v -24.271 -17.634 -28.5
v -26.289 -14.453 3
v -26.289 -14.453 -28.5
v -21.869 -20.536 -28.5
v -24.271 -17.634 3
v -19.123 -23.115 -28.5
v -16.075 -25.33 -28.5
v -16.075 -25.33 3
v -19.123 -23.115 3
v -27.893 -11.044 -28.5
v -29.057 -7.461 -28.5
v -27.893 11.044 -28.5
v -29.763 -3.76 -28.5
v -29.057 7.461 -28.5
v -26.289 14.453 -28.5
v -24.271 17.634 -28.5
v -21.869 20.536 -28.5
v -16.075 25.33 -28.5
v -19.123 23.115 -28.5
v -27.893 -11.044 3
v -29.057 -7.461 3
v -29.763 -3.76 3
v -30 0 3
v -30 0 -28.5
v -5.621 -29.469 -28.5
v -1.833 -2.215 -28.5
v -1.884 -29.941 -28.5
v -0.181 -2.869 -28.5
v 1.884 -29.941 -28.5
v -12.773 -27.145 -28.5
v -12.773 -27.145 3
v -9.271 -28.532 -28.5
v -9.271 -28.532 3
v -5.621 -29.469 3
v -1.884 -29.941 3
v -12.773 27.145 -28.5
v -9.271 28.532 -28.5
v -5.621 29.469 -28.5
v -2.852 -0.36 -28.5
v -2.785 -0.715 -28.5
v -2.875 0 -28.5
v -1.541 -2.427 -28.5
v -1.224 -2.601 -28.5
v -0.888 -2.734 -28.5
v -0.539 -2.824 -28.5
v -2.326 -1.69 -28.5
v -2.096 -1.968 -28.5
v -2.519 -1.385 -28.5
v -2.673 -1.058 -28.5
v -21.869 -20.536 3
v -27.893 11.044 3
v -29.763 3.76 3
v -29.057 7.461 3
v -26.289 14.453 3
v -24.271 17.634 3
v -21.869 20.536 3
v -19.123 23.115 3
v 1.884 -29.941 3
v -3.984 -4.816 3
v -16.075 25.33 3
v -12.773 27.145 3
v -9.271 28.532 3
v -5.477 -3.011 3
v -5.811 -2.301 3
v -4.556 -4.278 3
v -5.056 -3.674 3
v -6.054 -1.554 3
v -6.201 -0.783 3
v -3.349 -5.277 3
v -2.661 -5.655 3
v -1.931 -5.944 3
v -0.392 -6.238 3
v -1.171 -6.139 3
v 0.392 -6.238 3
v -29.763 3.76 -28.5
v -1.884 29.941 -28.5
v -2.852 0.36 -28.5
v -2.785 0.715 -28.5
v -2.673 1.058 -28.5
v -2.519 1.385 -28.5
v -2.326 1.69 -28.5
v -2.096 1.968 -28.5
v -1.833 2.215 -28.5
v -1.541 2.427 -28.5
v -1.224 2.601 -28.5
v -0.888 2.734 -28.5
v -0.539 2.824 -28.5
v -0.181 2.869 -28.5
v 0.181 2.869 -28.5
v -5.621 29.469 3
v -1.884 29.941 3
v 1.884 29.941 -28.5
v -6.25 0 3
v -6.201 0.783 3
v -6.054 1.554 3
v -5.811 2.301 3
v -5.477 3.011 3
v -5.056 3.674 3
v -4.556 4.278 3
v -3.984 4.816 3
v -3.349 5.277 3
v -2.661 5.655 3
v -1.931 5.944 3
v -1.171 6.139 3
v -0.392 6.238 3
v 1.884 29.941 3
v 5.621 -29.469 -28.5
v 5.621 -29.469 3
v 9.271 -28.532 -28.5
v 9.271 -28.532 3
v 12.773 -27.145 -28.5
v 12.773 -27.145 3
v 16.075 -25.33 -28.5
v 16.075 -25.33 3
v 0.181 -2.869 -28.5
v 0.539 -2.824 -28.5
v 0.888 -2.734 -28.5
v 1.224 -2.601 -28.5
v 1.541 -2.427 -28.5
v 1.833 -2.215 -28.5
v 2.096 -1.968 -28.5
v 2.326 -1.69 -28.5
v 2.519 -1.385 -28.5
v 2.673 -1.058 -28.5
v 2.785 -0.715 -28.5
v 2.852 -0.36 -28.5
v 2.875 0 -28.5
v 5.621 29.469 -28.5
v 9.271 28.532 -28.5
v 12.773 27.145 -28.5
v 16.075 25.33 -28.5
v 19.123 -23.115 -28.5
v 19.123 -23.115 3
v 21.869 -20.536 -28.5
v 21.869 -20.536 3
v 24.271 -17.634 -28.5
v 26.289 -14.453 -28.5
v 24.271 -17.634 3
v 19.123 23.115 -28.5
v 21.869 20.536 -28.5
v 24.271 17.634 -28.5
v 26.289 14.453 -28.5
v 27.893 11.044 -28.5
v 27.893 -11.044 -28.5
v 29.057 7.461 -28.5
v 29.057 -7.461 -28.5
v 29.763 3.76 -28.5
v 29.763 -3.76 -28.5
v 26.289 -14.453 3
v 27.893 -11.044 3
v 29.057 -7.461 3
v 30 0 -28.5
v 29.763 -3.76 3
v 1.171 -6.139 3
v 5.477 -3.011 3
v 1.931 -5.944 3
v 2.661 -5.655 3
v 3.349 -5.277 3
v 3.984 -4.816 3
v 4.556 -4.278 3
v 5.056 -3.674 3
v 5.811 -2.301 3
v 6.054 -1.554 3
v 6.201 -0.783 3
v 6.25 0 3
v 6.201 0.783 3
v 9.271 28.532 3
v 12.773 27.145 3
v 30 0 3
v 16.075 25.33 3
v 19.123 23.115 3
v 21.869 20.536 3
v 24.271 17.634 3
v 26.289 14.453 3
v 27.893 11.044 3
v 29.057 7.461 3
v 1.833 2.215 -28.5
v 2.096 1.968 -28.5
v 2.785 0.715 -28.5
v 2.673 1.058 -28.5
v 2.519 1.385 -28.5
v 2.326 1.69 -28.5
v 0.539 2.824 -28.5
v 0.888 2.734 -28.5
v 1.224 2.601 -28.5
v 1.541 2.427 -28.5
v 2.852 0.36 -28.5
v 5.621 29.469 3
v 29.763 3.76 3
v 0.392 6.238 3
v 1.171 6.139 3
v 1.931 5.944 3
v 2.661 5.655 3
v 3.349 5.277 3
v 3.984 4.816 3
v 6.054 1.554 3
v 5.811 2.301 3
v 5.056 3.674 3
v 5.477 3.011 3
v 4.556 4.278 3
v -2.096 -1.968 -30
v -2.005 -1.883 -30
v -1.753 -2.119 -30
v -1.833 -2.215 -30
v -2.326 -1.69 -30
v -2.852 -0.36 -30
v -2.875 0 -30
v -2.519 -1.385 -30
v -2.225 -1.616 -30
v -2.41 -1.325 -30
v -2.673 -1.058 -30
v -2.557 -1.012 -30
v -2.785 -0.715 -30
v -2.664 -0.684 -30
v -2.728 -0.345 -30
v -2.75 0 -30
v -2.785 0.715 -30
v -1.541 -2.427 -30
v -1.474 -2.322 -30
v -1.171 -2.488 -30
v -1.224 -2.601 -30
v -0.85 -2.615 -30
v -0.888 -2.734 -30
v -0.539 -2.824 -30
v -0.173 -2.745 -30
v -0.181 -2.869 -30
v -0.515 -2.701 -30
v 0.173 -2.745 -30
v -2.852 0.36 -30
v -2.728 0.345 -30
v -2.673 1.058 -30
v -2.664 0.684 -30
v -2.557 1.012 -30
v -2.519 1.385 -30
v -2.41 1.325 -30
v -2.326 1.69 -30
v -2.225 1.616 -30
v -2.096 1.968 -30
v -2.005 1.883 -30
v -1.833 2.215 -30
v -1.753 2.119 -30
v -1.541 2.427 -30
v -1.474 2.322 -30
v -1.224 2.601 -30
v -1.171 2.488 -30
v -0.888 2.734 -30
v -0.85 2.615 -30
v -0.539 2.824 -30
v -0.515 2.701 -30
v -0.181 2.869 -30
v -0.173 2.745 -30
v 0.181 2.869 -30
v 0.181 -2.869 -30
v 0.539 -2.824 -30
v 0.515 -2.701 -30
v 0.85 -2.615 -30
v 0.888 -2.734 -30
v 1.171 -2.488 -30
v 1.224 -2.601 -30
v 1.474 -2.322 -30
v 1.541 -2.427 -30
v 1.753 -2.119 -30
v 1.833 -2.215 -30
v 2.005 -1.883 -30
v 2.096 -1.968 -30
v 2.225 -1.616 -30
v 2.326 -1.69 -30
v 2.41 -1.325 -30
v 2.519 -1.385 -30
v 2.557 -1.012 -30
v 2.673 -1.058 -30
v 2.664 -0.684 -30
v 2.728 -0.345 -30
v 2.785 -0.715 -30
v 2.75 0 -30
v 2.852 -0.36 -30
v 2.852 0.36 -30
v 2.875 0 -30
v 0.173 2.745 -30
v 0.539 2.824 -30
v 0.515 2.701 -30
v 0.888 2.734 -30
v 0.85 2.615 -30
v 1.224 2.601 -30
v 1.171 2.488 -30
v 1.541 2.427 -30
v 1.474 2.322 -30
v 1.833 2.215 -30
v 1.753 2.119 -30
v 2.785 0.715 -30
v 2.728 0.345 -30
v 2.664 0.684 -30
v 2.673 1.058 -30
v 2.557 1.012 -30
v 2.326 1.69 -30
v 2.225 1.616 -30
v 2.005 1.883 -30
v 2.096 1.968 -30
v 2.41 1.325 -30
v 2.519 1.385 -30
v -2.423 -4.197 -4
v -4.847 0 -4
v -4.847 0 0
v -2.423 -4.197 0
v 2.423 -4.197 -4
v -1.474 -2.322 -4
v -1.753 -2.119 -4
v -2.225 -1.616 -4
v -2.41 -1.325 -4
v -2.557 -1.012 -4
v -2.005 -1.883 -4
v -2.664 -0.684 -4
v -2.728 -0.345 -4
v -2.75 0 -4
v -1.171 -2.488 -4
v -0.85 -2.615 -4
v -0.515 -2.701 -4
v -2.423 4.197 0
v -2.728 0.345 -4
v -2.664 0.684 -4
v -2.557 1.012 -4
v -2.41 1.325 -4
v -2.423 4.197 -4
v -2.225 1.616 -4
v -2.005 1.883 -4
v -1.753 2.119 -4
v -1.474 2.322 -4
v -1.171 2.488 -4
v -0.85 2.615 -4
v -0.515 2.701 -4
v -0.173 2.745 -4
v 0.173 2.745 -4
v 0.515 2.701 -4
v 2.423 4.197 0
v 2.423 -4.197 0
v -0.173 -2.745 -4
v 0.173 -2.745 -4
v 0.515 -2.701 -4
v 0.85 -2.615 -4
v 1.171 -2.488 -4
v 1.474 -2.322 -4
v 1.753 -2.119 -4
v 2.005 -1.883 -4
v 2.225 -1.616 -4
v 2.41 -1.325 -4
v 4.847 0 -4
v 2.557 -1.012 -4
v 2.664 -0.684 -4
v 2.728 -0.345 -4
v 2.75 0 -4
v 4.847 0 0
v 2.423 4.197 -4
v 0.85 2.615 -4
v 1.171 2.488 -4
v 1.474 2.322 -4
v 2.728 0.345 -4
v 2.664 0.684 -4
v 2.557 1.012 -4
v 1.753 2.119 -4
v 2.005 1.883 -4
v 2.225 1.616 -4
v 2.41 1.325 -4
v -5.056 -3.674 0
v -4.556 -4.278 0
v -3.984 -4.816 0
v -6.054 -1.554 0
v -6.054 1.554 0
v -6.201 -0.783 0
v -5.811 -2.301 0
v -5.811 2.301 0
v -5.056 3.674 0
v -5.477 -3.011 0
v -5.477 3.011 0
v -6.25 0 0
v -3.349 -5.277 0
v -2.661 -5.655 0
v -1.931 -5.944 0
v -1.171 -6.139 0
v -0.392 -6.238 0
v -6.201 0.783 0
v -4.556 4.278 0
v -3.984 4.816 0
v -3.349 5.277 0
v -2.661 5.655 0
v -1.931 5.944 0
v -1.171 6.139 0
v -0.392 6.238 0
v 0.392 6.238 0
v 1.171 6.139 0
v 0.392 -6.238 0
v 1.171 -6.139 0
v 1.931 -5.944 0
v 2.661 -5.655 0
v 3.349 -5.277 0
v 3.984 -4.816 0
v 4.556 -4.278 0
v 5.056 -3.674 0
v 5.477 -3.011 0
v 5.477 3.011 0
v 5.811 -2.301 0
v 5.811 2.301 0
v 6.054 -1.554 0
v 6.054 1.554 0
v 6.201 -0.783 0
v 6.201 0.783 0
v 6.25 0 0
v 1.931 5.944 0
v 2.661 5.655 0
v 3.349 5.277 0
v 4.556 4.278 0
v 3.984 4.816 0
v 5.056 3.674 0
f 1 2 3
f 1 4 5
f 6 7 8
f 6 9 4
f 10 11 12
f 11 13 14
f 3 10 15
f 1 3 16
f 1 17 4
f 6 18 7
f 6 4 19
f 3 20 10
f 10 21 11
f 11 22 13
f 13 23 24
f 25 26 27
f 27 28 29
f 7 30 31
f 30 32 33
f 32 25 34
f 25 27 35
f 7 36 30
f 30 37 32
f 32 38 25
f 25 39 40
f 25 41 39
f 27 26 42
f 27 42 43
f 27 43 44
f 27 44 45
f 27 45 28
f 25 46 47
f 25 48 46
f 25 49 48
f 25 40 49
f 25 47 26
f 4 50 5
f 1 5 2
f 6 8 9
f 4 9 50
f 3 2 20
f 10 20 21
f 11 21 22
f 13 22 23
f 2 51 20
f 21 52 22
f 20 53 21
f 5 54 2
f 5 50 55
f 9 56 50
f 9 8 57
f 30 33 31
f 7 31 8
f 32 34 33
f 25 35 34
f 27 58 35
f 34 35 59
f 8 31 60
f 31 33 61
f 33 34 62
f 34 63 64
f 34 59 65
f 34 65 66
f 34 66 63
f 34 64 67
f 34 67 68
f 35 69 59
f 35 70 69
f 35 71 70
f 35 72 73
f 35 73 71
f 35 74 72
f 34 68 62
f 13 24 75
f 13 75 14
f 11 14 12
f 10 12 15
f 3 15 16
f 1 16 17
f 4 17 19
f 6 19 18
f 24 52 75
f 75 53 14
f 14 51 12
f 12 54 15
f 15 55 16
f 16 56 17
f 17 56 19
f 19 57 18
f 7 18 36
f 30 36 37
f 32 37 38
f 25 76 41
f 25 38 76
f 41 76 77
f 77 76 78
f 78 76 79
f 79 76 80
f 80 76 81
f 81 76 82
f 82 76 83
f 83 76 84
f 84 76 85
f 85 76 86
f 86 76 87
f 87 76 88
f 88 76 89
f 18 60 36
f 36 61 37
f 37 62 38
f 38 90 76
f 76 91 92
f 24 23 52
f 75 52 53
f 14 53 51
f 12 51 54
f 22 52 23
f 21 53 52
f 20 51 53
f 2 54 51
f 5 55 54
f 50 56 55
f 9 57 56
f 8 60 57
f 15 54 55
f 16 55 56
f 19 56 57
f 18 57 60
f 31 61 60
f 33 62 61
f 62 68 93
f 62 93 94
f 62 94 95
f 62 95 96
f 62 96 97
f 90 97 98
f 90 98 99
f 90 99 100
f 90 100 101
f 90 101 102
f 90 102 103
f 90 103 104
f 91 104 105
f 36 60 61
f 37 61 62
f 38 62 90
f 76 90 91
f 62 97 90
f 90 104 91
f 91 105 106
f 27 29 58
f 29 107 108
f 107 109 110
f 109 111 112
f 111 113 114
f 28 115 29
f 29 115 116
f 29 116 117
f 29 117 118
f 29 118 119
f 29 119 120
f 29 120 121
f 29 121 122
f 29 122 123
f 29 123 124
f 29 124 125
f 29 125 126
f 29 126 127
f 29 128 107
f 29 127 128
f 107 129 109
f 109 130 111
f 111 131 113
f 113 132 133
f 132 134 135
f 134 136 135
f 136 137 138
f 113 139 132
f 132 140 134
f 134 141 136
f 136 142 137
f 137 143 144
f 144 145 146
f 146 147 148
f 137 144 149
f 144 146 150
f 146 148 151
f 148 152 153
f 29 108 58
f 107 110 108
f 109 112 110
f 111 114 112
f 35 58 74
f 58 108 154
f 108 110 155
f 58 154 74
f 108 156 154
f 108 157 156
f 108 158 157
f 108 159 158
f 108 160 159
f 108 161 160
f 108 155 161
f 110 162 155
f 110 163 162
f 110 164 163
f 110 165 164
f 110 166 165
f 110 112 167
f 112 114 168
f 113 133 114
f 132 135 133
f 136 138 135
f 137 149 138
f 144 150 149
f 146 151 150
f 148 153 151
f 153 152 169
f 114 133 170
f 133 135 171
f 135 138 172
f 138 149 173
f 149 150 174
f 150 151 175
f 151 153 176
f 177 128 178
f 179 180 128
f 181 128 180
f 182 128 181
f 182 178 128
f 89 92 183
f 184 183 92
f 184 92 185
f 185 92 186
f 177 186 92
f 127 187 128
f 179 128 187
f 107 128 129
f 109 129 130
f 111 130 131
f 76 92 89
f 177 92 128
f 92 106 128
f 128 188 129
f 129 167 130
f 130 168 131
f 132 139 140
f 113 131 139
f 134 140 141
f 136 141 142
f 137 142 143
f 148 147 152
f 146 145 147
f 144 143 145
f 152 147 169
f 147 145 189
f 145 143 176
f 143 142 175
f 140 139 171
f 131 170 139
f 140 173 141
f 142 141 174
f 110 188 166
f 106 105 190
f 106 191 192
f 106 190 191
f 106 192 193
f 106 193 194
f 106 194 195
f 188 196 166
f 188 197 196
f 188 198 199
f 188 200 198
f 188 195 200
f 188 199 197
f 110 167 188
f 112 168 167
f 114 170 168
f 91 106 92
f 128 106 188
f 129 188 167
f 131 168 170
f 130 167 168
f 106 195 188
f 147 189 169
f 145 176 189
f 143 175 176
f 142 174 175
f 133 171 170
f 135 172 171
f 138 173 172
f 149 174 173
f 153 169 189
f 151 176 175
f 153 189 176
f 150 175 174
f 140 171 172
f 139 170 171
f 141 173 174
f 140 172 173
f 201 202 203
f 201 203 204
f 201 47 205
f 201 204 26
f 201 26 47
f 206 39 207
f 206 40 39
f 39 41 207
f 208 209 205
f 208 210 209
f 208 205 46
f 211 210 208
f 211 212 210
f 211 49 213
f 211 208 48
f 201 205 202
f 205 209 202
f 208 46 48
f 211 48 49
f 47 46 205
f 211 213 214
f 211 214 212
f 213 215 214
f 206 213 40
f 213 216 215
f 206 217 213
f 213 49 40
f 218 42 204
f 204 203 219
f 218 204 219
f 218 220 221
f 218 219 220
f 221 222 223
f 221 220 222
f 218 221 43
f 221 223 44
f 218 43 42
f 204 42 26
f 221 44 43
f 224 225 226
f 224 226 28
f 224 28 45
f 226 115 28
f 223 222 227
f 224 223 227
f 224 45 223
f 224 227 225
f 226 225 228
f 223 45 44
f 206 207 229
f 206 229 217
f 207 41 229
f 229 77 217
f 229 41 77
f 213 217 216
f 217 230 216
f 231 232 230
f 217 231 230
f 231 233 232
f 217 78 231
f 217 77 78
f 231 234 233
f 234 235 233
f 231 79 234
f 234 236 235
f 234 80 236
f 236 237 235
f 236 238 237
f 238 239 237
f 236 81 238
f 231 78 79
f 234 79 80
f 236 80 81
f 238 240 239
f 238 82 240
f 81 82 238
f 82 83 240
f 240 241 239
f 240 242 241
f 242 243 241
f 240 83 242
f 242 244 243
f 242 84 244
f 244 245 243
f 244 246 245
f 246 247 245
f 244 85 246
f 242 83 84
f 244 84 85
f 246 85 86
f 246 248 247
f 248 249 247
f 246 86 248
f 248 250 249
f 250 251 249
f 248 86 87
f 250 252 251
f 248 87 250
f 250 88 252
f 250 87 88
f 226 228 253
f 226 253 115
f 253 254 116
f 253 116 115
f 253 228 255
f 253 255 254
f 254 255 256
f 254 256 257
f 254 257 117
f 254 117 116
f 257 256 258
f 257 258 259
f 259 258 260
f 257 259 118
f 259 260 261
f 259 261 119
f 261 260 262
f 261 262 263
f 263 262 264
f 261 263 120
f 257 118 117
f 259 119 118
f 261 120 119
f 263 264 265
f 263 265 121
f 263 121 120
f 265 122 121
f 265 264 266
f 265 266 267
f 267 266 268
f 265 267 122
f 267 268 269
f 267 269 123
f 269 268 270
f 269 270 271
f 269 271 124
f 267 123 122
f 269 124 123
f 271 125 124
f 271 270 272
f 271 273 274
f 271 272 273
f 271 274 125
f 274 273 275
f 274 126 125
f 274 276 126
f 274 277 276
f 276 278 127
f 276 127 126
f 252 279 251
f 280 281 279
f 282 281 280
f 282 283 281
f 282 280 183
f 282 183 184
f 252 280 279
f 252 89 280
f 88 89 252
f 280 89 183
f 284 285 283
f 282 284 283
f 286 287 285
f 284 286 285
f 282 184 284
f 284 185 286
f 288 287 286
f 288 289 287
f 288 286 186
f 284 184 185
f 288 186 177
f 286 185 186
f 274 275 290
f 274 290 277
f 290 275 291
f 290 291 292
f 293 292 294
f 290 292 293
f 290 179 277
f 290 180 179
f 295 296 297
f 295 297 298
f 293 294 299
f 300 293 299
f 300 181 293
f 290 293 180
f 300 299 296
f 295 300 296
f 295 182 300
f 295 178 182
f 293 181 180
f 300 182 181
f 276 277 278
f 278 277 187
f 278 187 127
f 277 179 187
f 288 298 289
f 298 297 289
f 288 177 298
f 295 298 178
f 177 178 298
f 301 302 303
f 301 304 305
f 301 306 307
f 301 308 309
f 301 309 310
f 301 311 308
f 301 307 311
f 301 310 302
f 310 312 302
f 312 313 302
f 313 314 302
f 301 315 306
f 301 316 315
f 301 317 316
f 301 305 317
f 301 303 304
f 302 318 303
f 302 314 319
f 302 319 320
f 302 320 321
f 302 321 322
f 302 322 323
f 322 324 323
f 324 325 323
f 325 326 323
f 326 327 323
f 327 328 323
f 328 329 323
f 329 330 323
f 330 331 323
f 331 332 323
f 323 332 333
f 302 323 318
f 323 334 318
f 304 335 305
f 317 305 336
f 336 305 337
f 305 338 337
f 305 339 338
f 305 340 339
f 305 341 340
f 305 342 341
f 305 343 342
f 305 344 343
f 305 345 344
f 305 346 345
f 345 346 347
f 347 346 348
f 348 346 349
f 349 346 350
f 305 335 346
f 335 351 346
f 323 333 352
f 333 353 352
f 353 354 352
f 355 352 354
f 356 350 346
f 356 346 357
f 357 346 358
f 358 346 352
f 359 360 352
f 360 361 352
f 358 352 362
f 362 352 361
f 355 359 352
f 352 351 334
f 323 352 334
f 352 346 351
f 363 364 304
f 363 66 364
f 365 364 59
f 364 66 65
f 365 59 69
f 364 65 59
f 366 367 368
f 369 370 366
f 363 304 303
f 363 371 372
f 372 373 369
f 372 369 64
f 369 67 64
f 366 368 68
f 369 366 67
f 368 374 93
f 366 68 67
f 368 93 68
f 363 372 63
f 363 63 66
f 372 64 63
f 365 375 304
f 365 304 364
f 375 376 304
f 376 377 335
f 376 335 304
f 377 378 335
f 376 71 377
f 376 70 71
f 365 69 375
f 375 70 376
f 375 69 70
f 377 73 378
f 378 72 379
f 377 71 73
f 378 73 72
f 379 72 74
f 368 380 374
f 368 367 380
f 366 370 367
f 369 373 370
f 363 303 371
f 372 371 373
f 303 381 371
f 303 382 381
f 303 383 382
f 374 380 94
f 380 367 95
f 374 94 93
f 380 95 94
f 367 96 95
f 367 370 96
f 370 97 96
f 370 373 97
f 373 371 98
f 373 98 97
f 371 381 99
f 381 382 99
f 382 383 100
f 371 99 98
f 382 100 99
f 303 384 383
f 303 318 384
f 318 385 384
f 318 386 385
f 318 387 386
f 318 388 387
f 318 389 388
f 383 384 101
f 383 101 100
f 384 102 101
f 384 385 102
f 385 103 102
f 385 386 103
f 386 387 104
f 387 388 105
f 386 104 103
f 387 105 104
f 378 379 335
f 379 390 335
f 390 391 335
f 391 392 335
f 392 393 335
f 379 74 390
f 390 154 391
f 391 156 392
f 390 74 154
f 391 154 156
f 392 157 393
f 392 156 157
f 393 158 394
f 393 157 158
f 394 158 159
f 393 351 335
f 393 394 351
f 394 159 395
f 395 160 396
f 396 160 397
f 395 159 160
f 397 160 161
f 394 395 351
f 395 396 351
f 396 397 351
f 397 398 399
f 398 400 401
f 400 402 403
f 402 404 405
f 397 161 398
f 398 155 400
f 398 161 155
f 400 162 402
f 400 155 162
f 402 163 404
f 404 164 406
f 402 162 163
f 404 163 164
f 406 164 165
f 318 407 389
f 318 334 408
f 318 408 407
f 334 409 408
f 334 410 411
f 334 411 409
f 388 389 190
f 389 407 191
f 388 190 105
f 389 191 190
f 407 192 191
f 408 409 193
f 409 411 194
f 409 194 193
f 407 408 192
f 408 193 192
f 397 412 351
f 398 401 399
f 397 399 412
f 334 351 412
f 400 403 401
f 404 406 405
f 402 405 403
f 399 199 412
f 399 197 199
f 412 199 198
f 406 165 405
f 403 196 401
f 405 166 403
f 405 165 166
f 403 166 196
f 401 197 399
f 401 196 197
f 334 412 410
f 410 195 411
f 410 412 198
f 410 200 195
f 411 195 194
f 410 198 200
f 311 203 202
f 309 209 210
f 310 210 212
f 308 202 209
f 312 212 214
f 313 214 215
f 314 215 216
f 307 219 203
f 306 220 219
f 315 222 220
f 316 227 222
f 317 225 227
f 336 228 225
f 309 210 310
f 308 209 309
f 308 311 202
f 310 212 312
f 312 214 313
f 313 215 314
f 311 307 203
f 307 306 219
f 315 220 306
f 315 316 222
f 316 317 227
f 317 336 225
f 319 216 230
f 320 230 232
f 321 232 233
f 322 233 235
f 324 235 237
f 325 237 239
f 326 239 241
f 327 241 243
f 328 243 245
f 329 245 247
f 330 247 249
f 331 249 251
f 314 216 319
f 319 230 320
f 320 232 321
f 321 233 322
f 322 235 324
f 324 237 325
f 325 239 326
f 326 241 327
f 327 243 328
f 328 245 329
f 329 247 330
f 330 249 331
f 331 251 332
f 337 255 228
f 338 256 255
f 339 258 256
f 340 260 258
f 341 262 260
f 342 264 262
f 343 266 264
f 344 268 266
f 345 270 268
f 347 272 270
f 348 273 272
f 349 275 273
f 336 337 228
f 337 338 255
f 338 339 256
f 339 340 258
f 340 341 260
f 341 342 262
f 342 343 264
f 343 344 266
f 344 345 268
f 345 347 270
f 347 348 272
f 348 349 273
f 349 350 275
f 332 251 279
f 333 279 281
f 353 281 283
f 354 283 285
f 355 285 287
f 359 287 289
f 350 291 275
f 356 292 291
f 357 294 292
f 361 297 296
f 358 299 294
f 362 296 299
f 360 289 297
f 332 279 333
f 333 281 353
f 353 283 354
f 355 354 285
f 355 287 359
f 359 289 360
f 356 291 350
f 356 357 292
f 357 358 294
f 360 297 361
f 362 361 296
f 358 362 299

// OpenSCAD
$fn = 50;

difference() {
	union() {
		translate(v = [0, 0, -28.5]) {
			cylinder(h = 31.5, r = 30.0);
		}
		#translate(v = [0, 0, -30.0]) {
			cylinder(h = 30, r = 2.875);
		}
	}
	union() {
		translate(v = [0, 0, 0]) {
			rotate(a = [0, 0, 0]) {
				difference() {
					union() {
						translate(v = [0, 0, -4]) {
							linear_extrude(height = 4) {
								polygon(points = [[4.8468, 0.0], [2.4234000000000004, 4.197451927062417], [-2.423399999999999, 4.197451927062417], [-4.8468, 5.935618106107392e-16], [-2.423400000000002, -4.197451927062416], [2.423399999999997, -4.197451927062419]]);
							}
						}
					}
					union();
				}
			}
		}
		#cylinder(h = 3, r = 6.25);
		#translate(v = [0, 0, -100.0]) {
			cylinder(h = 200, r = 2.75);
		}
	}
}
